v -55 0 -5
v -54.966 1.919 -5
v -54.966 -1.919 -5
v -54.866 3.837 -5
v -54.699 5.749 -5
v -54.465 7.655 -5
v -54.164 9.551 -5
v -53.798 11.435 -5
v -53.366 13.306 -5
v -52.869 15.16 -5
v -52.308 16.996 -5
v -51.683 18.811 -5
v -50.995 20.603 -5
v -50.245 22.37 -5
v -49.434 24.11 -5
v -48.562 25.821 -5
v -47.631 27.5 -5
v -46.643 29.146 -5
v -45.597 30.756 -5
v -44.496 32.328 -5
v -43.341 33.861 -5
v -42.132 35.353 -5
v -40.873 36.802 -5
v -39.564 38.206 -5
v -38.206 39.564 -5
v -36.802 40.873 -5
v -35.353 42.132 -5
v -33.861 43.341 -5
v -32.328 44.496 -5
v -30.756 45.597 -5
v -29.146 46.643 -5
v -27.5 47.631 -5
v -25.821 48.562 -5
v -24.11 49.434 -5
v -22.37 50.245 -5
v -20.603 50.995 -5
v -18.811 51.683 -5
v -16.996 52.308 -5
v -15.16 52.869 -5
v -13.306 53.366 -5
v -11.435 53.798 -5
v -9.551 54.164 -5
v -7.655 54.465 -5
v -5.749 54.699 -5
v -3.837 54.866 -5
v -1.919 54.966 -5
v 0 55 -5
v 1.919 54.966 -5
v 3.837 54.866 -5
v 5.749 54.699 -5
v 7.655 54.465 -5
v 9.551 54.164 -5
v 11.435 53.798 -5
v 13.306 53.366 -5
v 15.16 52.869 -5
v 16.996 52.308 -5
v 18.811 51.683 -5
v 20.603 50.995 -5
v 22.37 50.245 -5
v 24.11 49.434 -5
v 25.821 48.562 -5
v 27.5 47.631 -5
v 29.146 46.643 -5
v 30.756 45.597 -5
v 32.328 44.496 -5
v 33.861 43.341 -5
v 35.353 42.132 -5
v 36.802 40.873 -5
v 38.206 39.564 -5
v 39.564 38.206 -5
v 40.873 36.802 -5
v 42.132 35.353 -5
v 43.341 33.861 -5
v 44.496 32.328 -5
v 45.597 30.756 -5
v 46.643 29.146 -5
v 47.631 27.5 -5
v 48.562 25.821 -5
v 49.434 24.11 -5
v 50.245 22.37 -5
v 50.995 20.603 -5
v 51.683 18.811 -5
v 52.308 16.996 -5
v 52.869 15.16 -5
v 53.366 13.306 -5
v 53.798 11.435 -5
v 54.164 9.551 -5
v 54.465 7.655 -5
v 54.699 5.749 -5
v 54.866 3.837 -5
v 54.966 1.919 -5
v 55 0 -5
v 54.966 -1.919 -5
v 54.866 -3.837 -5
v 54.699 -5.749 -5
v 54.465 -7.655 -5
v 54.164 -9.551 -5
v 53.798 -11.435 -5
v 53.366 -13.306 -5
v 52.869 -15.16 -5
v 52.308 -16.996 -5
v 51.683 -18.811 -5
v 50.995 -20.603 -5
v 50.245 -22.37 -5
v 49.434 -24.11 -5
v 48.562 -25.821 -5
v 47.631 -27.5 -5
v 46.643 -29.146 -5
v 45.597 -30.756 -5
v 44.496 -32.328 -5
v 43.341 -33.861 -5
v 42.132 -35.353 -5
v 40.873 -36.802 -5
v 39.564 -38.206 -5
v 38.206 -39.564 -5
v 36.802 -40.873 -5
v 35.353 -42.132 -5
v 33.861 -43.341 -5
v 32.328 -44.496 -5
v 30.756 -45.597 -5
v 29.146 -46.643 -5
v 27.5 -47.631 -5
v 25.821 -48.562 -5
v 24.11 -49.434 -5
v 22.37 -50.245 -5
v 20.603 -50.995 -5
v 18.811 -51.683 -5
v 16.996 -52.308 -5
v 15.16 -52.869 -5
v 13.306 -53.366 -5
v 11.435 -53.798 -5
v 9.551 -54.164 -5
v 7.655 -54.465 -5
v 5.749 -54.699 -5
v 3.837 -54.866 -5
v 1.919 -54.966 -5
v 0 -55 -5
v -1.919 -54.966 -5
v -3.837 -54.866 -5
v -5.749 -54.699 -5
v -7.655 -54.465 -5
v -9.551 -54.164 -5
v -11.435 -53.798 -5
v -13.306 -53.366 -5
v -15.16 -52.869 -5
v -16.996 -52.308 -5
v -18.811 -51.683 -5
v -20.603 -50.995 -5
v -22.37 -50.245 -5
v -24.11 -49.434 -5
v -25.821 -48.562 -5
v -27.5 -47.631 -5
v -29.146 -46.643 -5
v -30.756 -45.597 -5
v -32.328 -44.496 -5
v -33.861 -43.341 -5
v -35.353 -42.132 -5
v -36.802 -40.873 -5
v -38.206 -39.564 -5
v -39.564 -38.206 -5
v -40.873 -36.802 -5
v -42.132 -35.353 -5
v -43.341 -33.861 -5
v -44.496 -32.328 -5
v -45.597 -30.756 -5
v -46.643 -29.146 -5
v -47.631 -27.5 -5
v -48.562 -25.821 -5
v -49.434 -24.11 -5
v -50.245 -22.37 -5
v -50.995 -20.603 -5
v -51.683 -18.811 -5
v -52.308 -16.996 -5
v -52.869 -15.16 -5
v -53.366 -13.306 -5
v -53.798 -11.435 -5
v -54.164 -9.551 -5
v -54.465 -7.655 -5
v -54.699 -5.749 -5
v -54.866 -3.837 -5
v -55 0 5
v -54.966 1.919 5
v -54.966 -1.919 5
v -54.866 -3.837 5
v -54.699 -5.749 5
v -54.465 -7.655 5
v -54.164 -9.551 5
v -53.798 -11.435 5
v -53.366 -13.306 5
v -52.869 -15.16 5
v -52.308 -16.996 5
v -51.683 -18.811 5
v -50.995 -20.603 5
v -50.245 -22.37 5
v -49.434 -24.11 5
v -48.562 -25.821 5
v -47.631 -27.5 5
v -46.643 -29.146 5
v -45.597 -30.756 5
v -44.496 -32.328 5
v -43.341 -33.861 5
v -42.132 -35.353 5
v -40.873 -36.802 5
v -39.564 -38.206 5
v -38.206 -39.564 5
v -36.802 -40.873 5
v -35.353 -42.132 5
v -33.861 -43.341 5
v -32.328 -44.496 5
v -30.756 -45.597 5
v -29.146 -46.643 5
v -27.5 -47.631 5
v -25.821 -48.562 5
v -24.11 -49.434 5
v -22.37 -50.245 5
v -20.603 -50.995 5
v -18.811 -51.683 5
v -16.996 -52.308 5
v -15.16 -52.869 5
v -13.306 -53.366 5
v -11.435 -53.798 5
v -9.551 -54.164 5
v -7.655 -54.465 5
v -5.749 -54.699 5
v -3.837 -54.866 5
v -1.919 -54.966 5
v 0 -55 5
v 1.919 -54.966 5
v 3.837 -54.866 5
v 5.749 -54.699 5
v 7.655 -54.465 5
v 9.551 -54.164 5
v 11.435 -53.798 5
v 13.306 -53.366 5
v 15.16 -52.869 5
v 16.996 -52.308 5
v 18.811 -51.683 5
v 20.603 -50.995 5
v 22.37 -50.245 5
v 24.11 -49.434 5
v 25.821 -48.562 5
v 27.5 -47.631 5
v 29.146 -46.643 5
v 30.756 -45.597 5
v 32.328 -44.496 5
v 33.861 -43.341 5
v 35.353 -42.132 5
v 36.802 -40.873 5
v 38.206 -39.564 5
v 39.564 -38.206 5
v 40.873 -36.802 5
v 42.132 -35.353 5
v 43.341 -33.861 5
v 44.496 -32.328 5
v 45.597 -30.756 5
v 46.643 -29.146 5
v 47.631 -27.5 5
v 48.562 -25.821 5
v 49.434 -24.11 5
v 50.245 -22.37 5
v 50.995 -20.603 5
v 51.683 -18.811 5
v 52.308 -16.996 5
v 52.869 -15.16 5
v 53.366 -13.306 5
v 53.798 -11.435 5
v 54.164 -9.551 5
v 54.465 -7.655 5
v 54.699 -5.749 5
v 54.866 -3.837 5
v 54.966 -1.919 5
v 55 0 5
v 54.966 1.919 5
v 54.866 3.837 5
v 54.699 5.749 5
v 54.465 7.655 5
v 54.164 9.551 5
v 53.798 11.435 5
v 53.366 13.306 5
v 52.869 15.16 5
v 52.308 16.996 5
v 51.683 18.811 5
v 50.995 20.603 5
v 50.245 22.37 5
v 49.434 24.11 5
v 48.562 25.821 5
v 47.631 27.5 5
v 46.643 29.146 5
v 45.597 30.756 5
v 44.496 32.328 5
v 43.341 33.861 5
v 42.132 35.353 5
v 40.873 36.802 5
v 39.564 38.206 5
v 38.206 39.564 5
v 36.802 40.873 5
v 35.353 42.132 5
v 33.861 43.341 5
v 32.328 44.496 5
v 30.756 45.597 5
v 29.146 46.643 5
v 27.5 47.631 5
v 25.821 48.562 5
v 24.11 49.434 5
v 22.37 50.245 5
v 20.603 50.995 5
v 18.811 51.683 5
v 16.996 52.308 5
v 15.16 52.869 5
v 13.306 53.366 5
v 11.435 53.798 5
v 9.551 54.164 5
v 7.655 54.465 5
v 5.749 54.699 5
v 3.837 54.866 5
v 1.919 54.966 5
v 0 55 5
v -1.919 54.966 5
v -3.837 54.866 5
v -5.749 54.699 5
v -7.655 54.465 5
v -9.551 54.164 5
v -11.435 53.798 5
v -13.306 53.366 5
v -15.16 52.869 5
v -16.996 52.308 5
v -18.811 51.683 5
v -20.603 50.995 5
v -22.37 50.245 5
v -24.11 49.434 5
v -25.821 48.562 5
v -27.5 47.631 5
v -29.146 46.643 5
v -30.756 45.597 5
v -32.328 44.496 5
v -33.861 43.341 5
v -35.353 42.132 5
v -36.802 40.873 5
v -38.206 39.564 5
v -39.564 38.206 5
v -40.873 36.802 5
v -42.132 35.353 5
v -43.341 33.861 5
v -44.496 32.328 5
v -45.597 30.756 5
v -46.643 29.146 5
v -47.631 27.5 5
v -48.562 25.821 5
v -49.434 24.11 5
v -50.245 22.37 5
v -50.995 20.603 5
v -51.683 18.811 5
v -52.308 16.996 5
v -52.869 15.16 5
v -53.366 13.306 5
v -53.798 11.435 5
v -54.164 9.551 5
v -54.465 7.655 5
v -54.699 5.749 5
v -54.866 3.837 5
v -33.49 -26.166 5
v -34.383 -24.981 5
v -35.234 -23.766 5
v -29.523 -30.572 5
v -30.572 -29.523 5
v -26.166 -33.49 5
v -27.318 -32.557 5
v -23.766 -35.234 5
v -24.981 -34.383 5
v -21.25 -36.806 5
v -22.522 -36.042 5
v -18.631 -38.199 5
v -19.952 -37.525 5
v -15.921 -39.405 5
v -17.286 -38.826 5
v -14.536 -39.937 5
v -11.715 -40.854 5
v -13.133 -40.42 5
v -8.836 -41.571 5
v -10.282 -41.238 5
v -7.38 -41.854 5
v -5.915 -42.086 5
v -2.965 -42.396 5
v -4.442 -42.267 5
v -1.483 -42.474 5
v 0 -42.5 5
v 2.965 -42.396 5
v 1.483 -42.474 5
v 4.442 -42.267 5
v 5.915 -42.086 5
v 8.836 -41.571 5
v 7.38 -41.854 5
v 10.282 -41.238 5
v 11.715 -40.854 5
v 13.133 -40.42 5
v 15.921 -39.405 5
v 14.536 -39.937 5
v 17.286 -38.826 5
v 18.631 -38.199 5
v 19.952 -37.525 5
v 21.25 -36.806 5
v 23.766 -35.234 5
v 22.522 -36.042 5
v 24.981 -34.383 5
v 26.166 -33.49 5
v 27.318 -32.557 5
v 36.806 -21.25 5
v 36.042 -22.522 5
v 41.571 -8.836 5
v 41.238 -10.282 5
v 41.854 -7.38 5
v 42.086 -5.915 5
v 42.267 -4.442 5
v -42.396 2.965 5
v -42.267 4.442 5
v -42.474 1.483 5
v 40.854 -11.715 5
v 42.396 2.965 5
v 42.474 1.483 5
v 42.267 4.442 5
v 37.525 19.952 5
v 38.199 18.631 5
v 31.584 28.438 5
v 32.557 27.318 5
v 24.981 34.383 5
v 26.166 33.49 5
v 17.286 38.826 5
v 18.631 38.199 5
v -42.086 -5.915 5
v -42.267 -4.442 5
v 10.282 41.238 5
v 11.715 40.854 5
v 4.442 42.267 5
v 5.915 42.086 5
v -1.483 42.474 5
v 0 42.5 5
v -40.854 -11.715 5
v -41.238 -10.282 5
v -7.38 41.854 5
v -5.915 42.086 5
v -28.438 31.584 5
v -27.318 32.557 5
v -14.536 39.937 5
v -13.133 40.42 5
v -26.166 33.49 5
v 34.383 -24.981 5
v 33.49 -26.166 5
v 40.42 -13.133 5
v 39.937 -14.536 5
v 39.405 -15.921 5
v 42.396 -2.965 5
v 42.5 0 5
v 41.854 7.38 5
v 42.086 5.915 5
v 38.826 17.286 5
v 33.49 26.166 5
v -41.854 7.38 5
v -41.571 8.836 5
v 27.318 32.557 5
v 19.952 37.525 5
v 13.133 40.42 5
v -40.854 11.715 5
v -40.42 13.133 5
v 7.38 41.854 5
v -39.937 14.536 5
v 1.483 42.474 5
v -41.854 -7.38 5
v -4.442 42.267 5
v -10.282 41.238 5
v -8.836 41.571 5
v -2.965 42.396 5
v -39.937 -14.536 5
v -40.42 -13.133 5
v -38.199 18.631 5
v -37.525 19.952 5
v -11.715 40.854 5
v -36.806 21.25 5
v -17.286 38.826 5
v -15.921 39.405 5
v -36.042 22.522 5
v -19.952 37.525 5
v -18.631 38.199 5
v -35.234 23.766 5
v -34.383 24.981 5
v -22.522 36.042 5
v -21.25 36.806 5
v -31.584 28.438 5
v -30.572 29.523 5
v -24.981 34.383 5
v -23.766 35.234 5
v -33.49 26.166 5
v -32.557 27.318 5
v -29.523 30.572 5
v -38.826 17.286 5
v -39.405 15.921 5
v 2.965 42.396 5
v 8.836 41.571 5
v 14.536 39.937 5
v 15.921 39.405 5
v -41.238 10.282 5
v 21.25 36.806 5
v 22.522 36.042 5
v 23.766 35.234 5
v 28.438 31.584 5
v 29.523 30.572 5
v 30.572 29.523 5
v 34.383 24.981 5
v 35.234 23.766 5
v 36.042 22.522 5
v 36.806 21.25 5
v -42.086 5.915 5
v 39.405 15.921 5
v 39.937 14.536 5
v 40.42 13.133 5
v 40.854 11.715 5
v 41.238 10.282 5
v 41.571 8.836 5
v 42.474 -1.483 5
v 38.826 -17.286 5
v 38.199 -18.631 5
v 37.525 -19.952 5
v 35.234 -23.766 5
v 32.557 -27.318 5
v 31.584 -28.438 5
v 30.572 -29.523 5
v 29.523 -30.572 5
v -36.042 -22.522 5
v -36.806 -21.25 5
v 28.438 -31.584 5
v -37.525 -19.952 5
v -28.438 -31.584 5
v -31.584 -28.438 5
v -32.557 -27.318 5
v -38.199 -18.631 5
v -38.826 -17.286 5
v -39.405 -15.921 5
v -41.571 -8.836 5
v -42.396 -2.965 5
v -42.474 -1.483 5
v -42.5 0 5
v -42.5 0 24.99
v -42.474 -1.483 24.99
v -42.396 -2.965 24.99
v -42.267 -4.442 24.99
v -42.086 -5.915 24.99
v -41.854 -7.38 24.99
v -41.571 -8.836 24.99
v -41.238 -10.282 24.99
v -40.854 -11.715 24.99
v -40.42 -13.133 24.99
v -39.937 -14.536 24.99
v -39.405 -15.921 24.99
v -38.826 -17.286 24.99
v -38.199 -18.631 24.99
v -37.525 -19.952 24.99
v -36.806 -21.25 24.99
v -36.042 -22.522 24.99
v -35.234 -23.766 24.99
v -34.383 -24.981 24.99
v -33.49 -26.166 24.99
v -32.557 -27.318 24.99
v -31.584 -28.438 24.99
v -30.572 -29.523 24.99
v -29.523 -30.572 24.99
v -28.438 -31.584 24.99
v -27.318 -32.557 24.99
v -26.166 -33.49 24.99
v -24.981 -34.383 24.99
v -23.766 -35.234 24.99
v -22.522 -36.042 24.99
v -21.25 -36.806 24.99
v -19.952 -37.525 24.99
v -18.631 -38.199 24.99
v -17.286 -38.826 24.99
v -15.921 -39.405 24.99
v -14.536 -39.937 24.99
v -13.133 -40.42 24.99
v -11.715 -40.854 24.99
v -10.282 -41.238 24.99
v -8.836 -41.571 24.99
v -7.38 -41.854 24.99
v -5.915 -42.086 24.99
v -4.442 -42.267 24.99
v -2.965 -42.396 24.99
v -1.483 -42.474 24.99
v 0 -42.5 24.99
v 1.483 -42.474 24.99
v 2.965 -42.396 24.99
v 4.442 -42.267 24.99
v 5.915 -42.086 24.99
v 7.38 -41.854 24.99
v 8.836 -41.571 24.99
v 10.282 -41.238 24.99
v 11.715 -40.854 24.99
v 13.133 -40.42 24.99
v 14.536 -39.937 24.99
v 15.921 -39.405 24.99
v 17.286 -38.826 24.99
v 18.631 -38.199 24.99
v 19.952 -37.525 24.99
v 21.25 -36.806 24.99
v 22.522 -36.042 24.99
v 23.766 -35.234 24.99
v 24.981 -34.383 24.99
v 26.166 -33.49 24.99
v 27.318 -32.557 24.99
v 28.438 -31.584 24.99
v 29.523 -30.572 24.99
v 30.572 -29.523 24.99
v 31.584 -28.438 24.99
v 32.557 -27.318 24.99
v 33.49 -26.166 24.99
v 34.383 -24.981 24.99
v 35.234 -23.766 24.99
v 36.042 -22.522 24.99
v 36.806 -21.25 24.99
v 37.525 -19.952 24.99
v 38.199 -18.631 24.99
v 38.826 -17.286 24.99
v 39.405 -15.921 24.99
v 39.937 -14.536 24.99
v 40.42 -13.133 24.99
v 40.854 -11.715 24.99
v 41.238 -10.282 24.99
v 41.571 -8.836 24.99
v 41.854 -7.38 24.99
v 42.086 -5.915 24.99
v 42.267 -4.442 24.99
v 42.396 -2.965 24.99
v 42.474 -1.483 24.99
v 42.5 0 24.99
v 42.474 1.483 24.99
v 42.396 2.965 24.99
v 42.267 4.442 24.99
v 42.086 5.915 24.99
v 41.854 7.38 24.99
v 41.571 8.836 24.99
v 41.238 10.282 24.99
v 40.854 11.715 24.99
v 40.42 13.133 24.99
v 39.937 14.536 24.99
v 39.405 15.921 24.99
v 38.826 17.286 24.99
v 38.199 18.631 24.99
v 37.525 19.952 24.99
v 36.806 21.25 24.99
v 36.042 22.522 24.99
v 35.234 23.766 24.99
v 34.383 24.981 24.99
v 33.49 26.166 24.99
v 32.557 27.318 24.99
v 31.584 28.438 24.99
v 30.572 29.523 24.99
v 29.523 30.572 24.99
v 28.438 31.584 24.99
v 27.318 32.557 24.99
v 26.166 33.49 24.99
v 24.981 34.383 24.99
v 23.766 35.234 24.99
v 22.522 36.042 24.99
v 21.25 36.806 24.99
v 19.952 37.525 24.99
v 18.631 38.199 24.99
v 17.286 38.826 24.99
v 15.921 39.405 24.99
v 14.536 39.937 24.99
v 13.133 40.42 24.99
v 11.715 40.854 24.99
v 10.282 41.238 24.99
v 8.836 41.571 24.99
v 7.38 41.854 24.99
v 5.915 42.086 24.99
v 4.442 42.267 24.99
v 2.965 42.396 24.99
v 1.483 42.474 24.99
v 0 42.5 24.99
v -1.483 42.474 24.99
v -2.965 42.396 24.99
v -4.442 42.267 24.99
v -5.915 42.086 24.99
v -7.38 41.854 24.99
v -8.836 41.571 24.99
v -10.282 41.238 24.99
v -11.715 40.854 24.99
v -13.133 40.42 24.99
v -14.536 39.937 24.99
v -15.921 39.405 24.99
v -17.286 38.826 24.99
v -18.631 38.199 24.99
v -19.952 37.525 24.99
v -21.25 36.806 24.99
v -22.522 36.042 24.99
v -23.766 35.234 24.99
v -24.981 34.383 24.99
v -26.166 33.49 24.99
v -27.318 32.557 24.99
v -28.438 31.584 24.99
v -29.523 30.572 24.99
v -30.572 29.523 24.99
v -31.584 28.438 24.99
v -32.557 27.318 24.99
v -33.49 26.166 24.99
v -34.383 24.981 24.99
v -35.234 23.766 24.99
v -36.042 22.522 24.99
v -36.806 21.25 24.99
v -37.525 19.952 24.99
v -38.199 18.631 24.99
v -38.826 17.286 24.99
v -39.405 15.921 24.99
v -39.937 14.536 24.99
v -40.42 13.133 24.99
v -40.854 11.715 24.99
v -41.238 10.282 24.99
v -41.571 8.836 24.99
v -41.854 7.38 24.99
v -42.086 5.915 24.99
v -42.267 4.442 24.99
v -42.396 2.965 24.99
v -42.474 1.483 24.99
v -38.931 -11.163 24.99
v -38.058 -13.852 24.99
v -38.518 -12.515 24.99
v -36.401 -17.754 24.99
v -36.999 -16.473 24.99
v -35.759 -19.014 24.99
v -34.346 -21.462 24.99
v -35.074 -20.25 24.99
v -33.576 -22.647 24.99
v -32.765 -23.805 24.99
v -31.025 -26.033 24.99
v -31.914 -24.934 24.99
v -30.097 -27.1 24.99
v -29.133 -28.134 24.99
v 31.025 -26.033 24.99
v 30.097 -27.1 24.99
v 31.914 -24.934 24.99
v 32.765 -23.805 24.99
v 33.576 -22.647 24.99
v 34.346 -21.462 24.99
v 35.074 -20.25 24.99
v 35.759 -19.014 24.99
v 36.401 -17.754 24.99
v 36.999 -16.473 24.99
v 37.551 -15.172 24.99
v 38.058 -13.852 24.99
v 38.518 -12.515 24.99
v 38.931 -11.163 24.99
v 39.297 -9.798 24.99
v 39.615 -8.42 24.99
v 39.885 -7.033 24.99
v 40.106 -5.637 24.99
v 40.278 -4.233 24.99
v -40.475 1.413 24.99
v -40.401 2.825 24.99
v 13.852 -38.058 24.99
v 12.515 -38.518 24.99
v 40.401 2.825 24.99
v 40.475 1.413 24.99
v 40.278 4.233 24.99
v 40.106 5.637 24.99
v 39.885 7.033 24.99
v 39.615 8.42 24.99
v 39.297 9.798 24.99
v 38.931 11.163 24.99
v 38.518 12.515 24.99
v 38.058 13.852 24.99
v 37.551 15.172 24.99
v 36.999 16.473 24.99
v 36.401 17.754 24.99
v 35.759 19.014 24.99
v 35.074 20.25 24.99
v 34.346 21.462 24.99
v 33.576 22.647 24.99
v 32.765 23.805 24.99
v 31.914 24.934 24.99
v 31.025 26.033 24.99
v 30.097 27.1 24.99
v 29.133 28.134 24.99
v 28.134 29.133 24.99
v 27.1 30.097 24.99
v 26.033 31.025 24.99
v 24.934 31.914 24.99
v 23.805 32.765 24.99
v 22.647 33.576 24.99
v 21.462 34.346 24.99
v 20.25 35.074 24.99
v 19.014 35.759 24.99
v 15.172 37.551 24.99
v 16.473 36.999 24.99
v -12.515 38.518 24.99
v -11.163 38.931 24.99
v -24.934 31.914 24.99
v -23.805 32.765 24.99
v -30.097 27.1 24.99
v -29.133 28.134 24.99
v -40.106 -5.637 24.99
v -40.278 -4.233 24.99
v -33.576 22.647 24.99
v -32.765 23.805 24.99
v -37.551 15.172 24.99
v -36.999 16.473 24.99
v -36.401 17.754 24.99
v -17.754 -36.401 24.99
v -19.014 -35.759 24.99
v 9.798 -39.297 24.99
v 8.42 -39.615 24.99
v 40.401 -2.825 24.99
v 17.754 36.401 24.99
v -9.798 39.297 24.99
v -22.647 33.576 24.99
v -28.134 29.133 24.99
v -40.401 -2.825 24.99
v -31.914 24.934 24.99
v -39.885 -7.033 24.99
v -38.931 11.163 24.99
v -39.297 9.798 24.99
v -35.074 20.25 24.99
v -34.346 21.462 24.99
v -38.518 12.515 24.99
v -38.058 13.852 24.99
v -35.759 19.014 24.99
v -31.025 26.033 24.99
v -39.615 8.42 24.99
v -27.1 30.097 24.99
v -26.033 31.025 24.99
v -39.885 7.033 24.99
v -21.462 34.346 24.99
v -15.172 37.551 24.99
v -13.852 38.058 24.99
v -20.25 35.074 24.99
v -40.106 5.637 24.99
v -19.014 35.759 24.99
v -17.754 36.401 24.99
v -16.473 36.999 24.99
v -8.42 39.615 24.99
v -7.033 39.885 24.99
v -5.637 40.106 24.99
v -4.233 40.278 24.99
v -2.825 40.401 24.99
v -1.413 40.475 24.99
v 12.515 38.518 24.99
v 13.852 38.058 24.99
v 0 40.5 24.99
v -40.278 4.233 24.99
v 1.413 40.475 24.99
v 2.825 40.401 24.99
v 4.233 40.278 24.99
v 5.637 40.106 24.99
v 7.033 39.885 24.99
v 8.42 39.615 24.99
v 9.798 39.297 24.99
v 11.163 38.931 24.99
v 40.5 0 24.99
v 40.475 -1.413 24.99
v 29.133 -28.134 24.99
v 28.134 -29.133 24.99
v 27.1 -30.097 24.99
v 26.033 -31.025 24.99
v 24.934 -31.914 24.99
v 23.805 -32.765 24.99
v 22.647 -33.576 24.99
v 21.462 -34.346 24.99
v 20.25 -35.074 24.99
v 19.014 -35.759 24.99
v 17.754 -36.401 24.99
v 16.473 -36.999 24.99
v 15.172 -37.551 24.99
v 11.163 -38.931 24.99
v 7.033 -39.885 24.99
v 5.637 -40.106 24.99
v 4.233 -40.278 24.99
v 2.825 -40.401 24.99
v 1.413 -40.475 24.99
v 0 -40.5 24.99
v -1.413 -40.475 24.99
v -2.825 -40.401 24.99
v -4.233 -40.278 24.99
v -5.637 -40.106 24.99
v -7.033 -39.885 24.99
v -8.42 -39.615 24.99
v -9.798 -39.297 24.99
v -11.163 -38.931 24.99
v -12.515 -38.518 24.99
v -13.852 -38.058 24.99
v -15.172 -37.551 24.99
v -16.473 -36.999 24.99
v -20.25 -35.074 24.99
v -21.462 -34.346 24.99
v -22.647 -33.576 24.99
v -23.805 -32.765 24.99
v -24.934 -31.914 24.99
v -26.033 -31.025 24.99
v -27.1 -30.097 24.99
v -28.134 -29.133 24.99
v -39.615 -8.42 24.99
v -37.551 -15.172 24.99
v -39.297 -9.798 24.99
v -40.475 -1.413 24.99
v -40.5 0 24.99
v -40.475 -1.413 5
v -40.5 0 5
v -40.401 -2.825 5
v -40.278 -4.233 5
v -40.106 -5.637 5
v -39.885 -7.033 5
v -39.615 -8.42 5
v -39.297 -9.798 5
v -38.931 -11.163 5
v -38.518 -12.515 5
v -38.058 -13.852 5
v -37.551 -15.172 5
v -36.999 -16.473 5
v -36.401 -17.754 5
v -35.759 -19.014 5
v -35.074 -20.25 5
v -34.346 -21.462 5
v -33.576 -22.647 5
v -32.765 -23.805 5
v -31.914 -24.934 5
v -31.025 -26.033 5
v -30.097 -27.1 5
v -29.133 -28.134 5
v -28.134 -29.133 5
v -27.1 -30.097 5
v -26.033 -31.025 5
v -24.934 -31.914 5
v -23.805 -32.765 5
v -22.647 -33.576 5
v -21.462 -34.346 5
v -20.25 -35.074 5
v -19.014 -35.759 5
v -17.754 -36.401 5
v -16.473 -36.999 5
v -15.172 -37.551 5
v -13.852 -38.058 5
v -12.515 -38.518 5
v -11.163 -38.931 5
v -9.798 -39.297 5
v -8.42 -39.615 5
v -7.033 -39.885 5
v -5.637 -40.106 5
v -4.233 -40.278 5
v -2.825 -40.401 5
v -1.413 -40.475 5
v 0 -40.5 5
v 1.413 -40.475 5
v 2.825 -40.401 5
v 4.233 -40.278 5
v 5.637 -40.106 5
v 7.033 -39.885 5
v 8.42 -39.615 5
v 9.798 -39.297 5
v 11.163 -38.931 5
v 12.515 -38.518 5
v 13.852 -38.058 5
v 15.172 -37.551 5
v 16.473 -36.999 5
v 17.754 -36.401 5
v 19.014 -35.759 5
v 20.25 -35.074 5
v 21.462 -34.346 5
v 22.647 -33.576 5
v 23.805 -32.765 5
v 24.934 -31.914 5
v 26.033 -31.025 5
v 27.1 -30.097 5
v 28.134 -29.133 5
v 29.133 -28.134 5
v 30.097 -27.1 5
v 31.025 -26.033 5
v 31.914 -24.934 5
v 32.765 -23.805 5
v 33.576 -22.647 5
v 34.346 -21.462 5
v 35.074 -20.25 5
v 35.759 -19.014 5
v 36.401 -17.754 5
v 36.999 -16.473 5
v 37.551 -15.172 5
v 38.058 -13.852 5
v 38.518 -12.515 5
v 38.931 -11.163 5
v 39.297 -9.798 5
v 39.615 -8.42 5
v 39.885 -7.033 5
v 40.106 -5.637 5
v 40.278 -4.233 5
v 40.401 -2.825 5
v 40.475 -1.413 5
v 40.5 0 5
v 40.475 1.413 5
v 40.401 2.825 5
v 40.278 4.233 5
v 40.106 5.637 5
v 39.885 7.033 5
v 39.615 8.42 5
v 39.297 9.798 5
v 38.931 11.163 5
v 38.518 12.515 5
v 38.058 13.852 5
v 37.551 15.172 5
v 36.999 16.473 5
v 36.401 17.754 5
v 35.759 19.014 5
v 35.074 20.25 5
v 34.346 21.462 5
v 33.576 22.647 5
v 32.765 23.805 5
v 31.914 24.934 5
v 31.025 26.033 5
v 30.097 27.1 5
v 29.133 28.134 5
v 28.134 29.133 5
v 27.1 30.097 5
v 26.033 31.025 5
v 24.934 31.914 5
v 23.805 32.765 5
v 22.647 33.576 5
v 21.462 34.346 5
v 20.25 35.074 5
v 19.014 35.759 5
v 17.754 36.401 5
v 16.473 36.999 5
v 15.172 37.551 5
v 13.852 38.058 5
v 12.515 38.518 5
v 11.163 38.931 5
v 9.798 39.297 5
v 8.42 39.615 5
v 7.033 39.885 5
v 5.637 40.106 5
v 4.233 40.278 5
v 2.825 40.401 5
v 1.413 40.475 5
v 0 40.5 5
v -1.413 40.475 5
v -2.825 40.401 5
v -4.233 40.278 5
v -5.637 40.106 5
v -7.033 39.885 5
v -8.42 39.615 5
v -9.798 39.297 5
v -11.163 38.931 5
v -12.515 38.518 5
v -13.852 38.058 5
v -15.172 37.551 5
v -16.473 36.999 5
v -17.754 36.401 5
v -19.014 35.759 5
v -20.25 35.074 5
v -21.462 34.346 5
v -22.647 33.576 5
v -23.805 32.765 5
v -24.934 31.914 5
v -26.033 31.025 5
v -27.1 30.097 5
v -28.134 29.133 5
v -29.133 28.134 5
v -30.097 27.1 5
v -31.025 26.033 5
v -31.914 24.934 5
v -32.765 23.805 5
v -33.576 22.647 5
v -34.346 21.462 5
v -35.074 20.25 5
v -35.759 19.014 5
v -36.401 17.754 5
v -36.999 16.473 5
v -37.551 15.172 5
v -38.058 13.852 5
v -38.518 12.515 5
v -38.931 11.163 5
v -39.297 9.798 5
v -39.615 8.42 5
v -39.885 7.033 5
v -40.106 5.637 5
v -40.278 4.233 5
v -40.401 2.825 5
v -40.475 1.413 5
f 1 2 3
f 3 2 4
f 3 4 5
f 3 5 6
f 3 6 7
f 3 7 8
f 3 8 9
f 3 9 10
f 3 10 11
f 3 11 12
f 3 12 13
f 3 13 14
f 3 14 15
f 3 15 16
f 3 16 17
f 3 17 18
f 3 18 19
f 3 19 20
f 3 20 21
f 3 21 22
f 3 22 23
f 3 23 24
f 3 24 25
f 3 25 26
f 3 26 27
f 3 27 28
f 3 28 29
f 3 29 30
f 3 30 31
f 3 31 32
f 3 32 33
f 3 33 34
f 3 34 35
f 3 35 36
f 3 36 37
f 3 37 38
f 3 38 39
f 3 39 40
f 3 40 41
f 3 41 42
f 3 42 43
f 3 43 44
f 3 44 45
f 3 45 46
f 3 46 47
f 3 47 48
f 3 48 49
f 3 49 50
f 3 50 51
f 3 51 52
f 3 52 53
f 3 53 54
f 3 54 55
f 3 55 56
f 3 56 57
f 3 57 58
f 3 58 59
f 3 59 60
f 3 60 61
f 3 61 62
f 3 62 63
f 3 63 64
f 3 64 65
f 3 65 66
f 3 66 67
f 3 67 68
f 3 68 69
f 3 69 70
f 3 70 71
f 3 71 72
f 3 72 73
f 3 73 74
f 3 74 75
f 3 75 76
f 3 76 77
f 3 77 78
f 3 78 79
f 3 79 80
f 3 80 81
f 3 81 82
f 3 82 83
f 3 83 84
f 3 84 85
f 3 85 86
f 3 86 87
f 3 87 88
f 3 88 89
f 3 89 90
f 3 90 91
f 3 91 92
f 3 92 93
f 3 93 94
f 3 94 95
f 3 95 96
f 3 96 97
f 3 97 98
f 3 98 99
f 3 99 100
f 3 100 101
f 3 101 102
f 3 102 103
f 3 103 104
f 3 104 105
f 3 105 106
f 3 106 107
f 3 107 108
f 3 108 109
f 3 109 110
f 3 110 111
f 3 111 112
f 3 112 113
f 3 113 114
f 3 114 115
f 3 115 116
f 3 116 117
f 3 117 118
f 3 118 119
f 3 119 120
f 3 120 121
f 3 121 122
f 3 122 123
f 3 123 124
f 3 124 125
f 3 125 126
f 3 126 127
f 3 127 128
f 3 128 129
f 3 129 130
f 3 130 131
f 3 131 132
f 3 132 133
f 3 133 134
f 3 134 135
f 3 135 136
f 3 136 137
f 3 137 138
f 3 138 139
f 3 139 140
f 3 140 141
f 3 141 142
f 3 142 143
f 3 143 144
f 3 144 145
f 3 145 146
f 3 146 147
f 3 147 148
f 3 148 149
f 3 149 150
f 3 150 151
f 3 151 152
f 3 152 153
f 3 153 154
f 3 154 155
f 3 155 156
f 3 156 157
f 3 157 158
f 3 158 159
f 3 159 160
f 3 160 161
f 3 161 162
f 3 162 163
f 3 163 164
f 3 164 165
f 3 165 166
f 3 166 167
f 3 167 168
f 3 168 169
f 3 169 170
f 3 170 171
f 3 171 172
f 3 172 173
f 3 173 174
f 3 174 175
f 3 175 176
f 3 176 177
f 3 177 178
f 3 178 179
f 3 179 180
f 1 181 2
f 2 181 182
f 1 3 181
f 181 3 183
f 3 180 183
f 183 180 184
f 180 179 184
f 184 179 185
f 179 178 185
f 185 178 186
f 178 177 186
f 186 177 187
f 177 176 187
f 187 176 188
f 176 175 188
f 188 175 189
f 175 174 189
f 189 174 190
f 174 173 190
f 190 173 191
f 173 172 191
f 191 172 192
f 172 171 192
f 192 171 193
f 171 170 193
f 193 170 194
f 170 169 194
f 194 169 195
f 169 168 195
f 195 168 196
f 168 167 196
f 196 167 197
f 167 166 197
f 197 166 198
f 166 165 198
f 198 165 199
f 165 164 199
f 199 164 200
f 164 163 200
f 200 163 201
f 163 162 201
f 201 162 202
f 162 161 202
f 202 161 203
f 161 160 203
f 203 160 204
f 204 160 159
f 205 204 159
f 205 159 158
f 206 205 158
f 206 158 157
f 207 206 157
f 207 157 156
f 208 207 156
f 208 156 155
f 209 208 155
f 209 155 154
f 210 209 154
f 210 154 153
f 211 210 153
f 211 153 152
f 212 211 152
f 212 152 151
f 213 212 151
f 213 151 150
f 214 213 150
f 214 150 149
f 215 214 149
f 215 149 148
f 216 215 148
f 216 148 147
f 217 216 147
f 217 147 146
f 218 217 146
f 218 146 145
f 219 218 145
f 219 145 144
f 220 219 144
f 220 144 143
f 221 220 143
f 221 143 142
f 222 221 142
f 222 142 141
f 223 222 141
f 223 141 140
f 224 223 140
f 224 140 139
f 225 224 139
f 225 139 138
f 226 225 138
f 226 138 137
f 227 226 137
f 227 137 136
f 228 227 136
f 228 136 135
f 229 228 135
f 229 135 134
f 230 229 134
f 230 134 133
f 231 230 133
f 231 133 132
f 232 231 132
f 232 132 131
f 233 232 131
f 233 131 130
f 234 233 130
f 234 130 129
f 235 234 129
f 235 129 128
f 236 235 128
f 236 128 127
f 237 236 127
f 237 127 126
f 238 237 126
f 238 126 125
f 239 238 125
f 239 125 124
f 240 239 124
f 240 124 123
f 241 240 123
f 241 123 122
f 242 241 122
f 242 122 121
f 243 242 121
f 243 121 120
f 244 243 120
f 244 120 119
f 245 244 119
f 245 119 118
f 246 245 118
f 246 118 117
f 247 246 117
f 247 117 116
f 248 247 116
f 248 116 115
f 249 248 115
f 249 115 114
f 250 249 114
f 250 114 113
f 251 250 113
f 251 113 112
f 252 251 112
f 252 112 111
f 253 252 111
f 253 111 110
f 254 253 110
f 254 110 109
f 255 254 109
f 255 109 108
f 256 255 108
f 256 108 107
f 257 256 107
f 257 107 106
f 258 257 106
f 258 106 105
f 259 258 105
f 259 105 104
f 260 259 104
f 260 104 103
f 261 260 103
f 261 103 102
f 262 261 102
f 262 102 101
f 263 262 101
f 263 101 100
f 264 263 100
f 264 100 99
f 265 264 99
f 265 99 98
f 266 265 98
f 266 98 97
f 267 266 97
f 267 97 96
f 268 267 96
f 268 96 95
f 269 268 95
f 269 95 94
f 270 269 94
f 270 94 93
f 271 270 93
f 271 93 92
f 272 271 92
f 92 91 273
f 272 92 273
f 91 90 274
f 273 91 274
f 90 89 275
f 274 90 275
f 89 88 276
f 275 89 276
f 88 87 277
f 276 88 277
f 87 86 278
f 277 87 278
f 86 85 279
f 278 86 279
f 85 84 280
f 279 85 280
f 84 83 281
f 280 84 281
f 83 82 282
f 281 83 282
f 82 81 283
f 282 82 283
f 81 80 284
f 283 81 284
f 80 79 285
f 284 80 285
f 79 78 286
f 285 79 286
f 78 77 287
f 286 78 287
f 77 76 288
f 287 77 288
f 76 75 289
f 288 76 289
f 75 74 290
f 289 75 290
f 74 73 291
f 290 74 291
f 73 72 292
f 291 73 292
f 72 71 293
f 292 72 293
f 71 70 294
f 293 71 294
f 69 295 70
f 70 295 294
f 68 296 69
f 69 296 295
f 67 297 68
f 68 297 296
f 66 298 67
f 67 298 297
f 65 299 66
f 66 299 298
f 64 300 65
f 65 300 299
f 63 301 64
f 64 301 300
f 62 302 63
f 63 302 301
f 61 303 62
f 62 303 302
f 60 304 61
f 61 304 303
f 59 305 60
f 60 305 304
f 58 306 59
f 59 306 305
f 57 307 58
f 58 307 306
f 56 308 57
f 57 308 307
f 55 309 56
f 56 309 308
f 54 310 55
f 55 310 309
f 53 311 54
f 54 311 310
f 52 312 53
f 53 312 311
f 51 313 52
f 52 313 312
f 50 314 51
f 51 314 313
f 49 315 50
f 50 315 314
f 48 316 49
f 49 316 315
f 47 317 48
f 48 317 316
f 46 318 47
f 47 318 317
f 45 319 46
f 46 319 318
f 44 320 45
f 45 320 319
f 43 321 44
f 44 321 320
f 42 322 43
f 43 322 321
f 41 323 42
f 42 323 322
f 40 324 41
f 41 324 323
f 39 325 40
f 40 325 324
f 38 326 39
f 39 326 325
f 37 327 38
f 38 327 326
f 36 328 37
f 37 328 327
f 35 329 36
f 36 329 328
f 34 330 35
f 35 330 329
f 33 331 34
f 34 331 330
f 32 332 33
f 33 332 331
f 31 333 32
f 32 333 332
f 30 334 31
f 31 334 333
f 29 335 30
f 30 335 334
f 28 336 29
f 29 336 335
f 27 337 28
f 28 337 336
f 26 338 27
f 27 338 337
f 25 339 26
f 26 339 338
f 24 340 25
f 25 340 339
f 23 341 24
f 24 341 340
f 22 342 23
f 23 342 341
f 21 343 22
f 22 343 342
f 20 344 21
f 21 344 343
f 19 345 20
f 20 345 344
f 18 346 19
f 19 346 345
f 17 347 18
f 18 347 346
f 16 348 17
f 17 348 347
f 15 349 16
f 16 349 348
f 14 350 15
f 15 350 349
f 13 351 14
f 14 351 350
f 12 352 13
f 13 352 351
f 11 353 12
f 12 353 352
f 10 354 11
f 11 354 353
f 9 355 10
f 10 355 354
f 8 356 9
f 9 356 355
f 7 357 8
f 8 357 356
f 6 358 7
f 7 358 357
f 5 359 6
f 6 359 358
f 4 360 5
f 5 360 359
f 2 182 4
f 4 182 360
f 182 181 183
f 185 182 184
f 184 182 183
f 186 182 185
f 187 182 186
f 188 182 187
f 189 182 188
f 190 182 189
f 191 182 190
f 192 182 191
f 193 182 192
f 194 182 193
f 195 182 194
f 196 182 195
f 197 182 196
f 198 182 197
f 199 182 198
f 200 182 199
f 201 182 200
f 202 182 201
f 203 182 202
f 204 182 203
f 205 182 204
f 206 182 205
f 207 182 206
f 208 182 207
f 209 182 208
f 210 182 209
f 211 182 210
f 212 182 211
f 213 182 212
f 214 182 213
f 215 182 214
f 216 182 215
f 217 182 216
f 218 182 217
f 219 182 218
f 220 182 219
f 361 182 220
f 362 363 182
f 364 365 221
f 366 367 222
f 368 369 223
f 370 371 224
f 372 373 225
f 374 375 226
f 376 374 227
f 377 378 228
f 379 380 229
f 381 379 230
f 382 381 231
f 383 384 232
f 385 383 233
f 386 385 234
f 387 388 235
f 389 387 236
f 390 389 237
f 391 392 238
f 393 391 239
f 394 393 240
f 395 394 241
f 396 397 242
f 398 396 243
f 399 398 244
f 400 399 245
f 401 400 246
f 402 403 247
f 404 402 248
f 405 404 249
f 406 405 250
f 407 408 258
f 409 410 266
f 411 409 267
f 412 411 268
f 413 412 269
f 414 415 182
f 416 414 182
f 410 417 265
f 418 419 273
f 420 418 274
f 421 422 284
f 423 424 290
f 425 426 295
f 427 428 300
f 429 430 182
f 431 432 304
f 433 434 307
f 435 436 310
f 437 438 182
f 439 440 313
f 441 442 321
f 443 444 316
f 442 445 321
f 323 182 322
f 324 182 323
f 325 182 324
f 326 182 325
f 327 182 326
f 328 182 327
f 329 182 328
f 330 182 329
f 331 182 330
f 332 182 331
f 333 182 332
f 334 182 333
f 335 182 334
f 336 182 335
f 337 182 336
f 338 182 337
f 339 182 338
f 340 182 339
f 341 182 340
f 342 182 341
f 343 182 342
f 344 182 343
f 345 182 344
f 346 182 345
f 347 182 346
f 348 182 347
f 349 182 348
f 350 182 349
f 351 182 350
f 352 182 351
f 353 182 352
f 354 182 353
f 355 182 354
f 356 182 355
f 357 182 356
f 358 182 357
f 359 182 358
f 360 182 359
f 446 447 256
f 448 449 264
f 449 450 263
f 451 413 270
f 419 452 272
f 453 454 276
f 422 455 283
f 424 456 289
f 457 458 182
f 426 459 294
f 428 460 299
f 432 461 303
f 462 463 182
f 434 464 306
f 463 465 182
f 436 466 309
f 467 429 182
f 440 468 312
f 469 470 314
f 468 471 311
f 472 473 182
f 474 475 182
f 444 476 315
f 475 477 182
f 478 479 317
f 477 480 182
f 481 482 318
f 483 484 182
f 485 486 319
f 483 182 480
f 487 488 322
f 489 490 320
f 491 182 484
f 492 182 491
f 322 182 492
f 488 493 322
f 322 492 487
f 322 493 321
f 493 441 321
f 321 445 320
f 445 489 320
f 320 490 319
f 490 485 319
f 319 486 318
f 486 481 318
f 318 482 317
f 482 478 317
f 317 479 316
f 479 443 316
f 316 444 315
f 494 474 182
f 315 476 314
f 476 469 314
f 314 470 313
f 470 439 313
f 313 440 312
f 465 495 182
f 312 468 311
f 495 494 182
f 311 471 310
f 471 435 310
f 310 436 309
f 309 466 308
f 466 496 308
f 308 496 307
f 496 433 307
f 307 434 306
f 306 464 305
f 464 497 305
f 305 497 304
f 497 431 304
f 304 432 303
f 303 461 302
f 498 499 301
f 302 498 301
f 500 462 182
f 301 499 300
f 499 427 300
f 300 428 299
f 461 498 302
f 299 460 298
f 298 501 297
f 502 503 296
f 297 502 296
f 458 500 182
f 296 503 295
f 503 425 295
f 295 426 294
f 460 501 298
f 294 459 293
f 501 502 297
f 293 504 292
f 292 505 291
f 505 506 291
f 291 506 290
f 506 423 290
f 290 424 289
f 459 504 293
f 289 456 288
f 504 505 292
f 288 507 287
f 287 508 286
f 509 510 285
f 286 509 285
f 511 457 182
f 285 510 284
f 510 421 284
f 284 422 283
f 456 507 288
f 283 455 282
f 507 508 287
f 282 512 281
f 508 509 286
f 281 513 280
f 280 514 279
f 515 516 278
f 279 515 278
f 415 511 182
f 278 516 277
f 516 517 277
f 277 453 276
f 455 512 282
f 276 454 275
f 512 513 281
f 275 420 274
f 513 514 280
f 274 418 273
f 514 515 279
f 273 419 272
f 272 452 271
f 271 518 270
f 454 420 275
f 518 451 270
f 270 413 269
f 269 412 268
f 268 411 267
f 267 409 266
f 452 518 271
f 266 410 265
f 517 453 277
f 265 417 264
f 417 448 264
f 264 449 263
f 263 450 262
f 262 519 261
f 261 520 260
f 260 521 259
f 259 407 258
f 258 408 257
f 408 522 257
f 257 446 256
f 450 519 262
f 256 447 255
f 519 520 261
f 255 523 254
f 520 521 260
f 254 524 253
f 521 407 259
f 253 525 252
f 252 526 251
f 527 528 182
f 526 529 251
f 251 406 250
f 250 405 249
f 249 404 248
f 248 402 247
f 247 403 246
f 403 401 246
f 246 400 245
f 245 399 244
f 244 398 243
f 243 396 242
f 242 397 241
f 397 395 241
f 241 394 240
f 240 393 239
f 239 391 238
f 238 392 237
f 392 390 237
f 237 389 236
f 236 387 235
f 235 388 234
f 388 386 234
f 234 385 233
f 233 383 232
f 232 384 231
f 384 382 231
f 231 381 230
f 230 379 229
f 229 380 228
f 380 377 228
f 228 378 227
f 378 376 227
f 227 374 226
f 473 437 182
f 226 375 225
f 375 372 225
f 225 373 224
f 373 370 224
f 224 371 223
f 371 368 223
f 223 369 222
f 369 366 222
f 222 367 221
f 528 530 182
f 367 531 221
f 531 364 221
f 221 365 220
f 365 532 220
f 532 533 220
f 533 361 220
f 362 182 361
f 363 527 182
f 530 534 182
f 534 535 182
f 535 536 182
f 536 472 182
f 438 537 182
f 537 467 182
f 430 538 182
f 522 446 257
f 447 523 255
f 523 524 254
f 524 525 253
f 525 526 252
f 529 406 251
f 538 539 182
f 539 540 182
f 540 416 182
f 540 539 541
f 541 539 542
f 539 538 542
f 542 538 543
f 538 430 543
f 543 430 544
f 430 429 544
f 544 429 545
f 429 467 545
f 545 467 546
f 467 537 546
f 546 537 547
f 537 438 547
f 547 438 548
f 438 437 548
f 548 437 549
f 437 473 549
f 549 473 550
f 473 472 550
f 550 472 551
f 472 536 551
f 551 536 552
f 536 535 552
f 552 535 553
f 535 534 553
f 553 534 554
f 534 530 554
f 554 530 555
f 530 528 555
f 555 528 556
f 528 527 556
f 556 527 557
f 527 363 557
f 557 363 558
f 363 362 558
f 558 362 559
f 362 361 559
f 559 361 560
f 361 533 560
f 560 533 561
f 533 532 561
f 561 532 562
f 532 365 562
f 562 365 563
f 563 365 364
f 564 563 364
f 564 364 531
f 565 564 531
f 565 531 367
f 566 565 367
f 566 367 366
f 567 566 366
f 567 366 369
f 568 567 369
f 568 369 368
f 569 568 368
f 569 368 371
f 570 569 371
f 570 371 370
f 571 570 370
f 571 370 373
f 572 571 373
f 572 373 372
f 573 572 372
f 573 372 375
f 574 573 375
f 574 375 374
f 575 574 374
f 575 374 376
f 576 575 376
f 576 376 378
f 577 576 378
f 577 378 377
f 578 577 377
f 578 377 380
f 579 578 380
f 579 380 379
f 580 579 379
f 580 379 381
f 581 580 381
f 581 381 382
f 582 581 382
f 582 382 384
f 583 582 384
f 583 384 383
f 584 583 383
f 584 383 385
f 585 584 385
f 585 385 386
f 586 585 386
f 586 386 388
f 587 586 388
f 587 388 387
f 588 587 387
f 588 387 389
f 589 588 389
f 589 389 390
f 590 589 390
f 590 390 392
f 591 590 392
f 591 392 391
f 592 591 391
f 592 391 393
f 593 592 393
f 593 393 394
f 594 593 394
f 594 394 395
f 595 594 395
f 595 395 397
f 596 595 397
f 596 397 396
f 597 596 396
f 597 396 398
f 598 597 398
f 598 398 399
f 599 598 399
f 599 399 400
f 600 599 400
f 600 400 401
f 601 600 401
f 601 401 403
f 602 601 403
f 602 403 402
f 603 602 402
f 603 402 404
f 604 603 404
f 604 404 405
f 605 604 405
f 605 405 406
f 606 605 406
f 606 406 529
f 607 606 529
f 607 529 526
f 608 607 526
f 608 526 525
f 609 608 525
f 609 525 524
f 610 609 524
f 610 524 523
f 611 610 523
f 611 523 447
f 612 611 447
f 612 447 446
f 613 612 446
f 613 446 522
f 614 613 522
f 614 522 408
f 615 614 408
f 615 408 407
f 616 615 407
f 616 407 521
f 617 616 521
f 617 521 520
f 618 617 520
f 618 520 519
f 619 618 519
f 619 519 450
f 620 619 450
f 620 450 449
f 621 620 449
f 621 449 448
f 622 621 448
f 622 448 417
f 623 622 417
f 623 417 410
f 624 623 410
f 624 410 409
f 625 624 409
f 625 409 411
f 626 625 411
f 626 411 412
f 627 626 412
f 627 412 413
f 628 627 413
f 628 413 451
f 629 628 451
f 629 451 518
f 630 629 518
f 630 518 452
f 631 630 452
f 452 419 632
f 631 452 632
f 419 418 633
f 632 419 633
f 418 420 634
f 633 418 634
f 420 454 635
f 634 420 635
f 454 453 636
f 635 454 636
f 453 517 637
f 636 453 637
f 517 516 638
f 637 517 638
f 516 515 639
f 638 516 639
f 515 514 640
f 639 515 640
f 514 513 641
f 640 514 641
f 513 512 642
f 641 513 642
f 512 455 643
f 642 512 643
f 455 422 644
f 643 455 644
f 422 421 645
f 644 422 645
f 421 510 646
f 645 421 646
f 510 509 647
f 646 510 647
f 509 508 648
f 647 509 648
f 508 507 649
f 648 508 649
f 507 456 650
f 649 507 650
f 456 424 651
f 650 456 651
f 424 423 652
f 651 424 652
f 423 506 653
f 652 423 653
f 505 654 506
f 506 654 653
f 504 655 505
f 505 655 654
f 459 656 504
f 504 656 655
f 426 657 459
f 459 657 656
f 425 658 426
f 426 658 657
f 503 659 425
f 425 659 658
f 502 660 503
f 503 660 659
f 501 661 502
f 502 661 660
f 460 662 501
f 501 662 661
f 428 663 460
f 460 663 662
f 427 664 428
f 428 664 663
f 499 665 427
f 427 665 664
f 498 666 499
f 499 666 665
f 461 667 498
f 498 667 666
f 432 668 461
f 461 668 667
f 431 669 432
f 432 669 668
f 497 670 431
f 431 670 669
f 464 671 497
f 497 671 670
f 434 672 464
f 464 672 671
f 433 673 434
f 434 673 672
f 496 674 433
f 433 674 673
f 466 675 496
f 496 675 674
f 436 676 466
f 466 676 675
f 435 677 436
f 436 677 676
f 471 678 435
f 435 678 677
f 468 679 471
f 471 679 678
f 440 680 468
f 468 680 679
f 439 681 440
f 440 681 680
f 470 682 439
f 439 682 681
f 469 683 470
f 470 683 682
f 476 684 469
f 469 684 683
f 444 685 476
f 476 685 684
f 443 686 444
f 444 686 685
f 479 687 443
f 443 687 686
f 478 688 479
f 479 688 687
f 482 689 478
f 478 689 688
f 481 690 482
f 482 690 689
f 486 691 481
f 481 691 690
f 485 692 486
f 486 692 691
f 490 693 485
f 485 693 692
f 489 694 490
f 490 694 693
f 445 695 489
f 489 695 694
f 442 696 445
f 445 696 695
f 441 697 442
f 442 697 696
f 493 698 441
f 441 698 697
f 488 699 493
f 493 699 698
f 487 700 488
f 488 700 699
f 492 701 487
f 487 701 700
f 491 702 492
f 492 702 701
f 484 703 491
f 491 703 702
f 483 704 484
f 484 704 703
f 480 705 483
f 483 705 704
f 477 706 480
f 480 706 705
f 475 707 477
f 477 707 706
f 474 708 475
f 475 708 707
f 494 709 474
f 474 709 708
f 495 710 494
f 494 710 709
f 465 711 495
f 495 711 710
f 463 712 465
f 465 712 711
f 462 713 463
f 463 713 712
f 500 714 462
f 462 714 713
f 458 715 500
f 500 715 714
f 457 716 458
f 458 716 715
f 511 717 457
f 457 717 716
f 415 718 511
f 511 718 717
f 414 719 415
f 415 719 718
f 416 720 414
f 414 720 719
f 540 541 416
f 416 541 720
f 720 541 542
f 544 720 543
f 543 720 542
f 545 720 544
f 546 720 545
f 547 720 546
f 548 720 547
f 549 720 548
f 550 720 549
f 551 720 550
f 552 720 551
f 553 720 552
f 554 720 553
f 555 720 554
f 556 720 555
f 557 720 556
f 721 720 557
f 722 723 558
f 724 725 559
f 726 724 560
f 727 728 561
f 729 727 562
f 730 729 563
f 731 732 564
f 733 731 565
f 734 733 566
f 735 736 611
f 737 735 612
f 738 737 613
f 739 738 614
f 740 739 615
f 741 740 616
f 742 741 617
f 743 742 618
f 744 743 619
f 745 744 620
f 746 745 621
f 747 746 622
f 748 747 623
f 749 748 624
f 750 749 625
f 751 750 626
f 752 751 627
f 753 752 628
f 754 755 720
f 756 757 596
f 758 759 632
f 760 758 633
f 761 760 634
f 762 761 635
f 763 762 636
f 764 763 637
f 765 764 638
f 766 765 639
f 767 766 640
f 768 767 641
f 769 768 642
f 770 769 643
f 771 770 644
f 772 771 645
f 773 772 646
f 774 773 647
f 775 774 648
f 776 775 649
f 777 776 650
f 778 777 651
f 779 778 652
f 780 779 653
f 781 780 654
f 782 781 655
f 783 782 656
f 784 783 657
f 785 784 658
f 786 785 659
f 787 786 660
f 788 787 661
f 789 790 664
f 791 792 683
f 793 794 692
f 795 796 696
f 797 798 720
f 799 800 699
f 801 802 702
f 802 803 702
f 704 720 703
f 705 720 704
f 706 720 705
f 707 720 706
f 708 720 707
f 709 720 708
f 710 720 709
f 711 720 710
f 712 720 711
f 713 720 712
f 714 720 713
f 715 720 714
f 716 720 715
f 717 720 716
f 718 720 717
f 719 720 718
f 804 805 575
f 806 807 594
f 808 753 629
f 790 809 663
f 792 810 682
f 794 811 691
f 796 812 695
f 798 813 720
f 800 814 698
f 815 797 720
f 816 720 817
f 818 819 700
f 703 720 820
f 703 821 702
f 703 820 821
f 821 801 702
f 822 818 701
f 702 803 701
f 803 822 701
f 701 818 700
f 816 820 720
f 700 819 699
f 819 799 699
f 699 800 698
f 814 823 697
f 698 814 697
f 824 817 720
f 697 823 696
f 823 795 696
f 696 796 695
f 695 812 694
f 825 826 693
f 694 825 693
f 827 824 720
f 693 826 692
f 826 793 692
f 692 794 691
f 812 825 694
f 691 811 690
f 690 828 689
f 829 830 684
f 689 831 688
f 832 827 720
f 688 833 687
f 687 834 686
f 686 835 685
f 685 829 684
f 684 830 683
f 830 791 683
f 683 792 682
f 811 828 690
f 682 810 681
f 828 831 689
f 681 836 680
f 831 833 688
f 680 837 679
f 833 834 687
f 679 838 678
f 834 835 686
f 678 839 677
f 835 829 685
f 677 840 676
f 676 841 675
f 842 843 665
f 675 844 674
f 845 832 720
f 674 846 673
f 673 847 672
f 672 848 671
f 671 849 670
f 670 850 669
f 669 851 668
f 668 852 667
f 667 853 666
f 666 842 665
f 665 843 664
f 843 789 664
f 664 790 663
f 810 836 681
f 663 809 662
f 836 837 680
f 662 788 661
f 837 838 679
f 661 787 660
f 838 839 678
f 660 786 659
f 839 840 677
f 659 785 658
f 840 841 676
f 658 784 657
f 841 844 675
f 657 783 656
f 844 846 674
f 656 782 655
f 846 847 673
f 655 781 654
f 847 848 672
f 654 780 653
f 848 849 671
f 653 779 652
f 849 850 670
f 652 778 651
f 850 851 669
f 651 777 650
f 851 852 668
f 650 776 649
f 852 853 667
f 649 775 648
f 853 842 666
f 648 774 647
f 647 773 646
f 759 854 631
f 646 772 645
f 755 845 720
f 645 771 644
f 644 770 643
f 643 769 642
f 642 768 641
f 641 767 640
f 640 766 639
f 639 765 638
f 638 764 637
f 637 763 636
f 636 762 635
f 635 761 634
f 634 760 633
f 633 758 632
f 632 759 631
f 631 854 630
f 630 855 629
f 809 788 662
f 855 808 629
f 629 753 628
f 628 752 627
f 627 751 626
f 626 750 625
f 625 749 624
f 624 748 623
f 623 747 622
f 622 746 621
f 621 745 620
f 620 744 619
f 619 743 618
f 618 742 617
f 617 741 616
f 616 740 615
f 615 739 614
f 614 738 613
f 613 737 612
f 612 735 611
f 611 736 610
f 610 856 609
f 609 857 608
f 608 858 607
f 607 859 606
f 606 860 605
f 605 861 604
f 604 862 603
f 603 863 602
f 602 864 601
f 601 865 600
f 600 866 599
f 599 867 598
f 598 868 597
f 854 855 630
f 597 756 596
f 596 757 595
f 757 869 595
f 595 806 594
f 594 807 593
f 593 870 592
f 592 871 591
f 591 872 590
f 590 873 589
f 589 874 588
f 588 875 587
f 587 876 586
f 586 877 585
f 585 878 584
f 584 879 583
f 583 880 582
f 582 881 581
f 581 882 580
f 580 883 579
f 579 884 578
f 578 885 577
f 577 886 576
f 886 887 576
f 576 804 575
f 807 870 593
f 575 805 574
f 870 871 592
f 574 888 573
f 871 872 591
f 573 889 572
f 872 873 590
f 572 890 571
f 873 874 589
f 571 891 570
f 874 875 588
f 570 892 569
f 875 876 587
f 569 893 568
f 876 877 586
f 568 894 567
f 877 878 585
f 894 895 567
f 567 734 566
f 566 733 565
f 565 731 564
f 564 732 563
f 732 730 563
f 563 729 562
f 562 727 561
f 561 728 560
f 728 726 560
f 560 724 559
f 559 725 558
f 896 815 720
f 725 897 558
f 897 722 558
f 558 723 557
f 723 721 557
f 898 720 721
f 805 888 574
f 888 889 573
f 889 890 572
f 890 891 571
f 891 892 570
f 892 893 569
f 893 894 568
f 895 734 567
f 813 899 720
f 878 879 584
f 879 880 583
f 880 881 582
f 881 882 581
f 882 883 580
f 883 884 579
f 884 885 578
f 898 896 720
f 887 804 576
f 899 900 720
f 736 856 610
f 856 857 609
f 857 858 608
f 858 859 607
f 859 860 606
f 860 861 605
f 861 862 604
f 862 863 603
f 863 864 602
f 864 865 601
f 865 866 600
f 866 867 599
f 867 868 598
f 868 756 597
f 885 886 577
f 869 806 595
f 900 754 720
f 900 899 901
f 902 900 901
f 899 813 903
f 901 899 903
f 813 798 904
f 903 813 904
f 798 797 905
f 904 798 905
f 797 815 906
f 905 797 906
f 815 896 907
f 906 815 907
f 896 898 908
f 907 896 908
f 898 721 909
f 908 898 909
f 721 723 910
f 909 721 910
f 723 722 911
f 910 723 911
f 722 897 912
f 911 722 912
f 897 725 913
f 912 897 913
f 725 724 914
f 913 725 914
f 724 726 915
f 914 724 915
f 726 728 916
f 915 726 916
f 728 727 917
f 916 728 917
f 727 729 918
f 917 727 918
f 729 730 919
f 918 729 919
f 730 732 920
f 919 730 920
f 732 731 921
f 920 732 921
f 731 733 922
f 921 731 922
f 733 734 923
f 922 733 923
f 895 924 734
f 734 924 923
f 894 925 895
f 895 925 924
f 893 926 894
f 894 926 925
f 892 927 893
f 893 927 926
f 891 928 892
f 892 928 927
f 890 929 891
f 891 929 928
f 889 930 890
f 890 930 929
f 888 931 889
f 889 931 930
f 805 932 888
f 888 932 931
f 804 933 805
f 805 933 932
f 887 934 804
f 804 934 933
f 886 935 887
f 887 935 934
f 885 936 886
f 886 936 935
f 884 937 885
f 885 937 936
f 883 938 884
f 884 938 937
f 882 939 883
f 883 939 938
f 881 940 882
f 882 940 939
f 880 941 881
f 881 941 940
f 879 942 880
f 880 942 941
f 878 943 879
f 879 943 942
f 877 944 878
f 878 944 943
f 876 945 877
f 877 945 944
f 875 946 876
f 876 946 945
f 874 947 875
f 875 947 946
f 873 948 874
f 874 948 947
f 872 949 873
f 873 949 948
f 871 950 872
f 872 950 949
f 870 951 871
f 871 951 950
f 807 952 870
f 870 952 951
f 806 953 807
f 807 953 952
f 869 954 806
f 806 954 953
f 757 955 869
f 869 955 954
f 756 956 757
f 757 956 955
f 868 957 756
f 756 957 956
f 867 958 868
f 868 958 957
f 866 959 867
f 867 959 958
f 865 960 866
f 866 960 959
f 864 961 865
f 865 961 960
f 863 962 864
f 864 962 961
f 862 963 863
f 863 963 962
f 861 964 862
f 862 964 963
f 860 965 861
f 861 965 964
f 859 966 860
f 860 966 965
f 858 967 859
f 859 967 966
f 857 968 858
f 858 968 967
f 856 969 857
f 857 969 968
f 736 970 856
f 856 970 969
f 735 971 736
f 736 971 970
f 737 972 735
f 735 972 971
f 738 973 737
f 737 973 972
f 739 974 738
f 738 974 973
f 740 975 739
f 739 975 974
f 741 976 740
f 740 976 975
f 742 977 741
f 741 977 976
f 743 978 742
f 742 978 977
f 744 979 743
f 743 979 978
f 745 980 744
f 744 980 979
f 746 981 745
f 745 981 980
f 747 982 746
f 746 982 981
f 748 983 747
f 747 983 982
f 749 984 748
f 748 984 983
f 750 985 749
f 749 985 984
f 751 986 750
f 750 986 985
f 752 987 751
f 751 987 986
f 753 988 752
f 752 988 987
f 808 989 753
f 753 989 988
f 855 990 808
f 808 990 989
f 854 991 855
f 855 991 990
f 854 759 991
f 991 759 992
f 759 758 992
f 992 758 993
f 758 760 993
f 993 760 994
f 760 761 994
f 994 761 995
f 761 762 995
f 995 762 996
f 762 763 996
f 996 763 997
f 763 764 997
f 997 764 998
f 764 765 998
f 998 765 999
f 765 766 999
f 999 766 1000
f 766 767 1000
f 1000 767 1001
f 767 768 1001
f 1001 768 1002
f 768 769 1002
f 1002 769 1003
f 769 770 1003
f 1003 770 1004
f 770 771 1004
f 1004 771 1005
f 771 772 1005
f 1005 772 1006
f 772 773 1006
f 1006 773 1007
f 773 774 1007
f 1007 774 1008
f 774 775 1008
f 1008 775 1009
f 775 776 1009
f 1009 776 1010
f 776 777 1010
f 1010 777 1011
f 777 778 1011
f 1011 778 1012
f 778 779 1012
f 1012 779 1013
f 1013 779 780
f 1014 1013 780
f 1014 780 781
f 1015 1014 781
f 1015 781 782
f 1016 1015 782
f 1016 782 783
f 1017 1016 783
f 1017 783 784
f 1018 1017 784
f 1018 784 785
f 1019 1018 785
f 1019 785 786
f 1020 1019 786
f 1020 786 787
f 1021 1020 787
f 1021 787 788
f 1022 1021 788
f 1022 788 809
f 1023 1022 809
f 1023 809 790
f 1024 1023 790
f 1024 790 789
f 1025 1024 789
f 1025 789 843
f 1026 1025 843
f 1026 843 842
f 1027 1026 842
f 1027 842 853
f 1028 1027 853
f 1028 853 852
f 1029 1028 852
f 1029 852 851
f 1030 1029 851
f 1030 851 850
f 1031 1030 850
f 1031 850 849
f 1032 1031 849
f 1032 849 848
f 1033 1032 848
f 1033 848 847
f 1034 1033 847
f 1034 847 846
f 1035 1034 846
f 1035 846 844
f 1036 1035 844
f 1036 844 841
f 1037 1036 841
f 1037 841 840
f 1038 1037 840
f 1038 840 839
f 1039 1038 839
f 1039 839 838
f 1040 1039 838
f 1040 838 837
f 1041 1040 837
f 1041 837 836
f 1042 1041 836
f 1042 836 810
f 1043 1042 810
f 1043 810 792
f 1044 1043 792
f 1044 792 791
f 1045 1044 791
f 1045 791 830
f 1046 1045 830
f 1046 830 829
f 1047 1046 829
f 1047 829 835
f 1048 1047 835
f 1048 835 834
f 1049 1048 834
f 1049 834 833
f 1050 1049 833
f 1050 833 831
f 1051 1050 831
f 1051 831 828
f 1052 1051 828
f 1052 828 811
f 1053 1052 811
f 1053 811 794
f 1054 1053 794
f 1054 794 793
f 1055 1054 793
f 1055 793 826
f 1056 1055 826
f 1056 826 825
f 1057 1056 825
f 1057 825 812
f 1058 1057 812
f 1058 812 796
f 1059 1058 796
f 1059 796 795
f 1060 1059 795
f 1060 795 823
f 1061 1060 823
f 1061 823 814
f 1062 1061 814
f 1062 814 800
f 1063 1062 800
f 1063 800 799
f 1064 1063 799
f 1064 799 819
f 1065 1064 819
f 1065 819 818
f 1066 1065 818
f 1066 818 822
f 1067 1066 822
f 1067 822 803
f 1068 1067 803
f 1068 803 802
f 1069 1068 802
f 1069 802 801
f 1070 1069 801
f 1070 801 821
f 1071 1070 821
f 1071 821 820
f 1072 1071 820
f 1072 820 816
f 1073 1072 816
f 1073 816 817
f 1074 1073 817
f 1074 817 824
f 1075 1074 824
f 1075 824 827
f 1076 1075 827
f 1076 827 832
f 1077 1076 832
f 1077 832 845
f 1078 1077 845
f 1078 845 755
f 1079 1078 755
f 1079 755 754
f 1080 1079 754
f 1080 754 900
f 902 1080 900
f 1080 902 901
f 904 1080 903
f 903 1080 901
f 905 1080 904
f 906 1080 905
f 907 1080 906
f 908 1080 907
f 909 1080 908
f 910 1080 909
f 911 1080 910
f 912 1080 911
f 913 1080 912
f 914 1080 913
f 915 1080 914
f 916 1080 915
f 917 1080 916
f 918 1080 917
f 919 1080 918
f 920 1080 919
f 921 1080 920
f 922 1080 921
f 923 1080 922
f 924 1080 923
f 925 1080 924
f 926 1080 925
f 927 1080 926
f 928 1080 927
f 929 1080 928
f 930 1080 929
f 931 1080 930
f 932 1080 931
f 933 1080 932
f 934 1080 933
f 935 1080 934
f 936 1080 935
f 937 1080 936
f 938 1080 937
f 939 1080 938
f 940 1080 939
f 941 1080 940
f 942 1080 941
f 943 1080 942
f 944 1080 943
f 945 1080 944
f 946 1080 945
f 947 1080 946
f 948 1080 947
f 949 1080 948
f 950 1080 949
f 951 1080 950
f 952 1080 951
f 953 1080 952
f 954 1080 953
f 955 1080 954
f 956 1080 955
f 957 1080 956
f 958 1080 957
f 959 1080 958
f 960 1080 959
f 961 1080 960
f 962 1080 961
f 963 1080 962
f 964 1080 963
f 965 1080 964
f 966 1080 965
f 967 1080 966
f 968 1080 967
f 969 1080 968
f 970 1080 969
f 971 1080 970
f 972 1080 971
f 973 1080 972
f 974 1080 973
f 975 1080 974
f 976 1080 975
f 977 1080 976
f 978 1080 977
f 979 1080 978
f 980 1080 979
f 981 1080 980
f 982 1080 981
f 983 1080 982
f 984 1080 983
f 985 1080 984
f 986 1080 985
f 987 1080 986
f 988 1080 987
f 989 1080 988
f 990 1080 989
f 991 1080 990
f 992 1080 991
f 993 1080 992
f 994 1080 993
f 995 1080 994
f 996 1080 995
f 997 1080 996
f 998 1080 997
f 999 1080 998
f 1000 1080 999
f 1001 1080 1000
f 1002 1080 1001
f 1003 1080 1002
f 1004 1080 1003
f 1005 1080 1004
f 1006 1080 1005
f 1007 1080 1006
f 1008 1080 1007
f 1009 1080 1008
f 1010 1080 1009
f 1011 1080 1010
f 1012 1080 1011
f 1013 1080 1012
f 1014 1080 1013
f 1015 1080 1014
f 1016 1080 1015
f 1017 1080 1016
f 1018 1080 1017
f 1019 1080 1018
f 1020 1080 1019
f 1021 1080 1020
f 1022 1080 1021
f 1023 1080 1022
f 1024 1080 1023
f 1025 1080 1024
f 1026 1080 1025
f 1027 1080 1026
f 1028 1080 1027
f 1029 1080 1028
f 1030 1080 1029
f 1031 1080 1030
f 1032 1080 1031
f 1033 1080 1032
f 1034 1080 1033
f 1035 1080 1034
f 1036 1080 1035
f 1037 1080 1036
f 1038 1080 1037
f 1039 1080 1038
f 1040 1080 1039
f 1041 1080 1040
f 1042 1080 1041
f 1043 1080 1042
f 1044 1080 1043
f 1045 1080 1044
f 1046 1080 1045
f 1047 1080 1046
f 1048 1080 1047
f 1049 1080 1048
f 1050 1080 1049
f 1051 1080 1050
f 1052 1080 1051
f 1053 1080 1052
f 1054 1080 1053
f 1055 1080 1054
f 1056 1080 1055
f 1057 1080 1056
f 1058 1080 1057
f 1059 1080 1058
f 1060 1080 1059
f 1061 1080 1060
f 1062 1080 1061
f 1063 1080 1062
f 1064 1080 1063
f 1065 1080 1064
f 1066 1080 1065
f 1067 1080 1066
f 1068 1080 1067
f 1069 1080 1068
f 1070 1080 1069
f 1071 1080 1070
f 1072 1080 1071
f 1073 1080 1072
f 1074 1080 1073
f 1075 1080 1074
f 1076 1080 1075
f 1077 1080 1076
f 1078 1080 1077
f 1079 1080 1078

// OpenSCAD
//Cupholder covers
//	Covers for couch cupholders so my dog will stop tripping in them when she climbs on the couch.

cupholder_diameter = 85;
cover_diameter = 110;

cover_thickness = 10;

insert_depth = 20;
insert_thickness = 2;

union()
{
	cylinder(h=cover_thickness, r=cover_diameter/2, center = true, $fn = 180);

	translate([0,0,cover_thickness/2 + insert_depth/2 - 0.01])
	difference()
	{
		cylinder(h = insert_depth, r = cupholder_diameter/2, center = true, $fn = 180);
		cylinder(h = insert_depth + 0.01, r = cupholder_diameter/2 - insert_thickness, center=true, $fn=180); 
	}
}
